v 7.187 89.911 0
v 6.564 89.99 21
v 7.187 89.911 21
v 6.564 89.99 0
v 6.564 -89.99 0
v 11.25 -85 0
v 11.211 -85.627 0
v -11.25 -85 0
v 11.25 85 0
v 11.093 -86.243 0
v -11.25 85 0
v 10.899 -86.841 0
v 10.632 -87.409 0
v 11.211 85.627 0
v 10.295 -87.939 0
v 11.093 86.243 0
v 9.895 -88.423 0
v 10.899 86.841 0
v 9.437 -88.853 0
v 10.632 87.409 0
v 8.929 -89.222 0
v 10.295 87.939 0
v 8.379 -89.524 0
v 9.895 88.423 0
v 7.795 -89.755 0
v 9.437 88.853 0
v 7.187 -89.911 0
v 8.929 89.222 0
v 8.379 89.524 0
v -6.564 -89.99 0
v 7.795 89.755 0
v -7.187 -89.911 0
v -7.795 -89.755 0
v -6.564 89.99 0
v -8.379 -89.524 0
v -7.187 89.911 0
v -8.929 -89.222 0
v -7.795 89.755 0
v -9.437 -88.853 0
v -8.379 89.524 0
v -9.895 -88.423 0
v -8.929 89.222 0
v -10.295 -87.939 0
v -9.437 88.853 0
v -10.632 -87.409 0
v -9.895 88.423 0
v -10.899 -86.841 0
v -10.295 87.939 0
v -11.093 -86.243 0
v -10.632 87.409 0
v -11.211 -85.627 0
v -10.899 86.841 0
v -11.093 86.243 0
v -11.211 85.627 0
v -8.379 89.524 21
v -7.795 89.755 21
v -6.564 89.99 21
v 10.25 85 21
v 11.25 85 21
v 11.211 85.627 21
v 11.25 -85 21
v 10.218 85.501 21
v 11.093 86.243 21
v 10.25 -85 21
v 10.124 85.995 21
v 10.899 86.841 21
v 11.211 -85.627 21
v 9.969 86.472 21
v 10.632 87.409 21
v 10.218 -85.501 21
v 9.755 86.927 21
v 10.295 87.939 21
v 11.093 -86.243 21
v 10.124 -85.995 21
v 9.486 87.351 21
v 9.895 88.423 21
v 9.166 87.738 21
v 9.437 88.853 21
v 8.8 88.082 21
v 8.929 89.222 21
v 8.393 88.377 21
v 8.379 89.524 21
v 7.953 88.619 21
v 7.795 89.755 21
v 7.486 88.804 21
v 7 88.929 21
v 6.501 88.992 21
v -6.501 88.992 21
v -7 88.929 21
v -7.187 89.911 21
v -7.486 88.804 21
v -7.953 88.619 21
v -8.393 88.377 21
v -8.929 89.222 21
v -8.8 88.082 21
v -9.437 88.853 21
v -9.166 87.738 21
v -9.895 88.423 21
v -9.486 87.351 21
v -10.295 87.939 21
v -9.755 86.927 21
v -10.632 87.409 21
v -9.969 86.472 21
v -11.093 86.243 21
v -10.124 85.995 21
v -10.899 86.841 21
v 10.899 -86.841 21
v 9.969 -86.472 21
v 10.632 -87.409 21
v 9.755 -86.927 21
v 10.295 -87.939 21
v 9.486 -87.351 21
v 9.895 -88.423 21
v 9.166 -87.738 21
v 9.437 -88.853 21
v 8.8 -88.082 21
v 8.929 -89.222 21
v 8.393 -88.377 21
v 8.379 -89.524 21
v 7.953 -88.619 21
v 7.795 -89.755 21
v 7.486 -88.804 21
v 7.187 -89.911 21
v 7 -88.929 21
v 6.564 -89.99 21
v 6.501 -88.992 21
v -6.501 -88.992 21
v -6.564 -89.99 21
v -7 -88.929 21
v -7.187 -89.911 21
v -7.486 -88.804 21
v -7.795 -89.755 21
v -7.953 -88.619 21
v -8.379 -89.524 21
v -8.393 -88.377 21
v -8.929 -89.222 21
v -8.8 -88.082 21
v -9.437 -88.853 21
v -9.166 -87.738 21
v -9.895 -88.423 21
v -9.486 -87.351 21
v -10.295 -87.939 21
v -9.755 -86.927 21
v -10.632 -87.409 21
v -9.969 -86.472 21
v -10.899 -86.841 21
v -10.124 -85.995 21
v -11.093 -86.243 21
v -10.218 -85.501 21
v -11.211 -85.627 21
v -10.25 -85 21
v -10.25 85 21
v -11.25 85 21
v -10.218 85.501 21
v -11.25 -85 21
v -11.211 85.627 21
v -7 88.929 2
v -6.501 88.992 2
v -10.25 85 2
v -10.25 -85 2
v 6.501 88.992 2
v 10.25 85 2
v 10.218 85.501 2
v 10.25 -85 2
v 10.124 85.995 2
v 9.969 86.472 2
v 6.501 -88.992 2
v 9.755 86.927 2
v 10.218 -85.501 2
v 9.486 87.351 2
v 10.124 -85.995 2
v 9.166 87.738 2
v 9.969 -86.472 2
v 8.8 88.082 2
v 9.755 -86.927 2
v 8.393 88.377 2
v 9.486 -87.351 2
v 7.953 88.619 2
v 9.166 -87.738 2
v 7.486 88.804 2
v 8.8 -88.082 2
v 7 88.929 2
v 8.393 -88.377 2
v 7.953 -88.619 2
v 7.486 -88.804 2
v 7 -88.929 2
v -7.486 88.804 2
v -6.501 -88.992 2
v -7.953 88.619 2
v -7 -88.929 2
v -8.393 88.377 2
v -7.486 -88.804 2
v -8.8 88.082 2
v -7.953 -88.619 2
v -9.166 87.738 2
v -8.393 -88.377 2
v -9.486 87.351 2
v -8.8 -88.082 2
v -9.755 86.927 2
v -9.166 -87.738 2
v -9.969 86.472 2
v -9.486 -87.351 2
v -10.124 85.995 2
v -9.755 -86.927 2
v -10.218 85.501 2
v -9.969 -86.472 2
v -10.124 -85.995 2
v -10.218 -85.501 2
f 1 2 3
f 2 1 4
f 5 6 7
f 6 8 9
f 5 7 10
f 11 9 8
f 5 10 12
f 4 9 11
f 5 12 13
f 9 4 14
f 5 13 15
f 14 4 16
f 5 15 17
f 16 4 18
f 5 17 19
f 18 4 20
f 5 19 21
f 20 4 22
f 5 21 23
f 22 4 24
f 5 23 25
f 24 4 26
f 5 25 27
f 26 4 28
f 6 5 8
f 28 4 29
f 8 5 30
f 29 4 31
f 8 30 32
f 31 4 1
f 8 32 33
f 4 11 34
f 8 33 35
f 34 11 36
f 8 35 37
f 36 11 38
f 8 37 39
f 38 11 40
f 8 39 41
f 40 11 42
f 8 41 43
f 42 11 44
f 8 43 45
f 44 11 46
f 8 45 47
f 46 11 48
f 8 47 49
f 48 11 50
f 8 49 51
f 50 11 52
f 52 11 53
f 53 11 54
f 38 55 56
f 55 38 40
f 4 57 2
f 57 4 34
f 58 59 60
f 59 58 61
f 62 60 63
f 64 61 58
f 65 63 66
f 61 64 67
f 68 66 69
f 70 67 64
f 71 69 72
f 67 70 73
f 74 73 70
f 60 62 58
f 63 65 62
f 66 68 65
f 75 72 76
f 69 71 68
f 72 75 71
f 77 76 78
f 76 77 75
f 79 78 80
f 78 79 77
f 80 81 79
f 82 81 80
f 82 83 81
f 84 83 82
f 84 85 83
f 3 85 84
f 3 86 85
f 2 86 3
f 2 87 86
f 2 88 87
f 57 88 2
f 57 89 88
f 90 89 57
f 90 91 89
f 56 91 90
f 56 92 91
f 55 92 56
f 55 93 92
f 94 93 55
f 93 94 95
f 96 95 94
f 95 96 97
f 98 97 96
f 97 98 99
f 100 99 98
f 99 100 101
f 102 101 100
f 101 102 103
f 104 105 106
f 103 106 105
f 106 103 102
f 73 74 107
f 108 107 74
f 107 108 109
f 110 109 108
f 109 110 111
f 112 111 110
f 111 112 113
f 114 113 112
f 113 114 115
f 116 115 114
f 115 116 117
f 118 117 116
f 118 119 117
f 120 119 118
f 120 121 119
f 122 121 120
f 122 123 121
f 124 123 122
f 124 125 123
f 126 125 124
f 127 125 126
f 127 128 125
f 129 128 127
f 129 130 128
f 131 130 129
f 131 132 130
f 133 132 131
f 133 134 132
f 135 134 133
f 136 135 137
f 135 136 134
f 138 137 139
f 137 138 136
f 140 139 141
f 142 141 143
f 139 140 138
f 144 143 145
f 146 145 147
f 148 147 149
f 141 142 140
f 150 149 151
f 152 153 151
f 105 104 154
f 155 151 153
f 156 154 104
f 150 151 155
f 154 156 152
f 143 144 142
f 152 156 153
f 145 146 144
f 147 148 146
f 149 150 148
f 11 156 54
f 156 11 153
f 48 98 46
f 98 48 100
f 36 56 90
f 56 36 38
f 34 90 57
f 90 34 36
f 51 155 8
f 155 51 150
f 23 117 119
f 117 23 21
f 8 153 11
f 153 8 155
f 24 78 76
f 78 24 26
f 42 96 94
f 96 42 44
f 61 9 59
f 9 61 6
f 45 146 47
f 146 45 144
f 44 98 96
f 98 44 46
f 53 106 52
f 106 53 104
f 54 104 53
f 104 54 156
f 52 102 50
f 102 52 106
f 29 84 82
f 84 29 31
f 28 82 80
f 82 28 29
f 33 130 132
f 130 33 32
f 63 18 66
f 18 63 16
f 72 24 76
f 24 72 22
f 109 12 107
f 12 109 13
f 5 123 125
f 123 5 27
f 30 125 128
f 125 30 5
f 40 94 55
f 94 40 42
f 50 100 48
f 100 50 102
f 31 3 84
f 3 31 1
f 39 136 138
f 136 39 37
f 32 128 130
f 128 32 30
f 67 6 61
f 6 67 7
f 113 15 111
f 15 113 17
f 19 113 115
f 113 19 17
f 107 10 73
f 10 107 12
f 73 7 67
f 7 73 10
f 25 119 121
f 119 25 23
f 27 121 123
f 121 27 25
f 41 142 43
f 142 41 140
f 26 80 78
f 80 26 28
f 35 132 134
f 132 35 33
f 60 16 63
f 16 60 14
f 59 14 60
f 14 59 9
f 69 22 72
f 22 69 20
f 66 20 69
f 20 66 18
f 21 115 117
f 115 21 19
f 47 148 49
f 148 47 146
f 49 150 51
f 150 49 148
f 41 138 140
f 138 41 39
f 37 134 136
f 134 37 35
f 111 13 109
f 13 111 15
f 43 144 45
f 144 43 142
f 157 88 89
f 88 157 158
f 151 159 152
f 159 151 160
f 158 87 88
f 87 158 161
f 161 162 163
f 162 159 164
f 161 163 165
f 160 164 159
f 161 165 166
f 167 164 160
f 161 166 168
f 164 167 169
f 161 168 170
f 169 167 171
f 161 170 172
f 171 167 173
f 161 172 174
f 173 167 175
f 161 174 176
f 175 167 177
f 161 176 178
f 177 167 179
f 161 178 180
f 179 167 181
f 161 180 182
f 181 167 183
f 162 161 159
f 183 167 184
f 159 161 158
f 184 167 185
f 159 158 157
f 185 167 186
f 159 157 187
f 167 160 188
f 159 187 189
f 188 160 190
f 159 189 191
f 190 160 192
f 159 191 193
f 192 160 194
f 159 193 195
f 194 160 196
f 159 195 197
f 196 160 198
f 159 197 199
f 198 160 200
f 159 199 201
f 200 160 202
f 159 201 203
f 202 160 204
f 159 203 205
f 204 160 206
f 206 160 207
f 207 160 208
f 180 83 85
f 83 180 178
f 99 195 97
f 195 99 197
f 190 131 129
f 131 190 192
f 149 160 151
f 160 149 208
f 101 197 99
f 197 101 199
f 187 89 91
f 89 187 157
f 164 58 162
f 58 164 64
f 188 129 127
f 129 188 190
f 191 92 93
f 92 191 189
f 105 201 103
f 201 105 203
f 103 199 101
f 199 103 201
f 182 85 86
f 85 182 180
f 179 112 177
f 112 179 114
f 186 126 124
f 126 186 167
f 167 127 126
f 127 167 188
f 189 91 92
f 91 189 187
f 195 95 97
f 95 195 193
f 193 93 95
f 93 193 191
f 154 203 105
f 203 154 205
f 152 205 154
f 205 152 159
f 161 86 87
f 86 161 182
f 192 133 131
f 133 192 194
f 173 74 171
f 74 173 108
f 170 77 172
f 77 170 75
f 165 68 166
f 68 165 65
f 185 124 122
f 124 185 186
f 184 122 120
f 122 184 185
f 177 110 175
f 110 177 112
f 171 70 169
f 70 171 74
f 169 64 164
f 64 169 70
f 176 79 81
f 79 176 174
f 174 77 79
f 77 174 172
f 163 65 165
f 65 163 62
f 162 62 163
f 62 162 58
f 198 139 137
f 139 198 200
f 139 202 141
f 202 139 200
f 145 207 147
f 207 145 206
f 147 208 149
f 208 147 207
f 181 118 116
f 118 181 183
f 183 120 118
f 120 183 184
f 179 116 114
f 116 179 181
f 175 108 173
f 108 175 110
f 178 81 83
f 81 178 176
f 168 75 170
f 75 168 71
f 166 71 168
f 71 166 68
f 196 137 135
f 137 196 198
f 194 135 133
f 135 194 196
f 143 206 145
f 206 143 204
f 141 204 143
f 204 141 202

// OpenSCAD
$fn = 50;


difference() {
	union() {
		hull() {
			translate(v = [-6.2500000000, 85.0000000000, 0]) {
				cylinder(h = 21, r = 5);
			}
			translate(v = [6.2500000000, 85.0000000000, 0]) {
				cylinder(h = 21, r = 5);
			}
			translate(v = [-6.2500000000, -85.0000000000, 0]) {
				cylinder(h = 21, r = 5);
			}
			translate(v = [6.2500000000, -85.0000000000, 0]) {
				cylinder(h = 21, r = 5);
			}
		}
	}
	union() {
		translate(v = [0, 0, 2]) {
			hull() {
				translate(v = [-6.2500000000, 85.0000000000, 0]) {
					cylinder(h = 19, r = 4);
				}
				translate(v = [6.2500000000, 85.0000000000, 0]) {
					cylinder(h = 19, r = 4);
				}
				translate(v = [-6.2500000000, -85.0000000000, 0]) {
					cylinder(h = 19, r = 4);
				}
				translate(v = [6.2500000000, -85.0000000000, 0]) {
					cylinder(h = 19, r = 4);
				}
			}
		}
	}
}
